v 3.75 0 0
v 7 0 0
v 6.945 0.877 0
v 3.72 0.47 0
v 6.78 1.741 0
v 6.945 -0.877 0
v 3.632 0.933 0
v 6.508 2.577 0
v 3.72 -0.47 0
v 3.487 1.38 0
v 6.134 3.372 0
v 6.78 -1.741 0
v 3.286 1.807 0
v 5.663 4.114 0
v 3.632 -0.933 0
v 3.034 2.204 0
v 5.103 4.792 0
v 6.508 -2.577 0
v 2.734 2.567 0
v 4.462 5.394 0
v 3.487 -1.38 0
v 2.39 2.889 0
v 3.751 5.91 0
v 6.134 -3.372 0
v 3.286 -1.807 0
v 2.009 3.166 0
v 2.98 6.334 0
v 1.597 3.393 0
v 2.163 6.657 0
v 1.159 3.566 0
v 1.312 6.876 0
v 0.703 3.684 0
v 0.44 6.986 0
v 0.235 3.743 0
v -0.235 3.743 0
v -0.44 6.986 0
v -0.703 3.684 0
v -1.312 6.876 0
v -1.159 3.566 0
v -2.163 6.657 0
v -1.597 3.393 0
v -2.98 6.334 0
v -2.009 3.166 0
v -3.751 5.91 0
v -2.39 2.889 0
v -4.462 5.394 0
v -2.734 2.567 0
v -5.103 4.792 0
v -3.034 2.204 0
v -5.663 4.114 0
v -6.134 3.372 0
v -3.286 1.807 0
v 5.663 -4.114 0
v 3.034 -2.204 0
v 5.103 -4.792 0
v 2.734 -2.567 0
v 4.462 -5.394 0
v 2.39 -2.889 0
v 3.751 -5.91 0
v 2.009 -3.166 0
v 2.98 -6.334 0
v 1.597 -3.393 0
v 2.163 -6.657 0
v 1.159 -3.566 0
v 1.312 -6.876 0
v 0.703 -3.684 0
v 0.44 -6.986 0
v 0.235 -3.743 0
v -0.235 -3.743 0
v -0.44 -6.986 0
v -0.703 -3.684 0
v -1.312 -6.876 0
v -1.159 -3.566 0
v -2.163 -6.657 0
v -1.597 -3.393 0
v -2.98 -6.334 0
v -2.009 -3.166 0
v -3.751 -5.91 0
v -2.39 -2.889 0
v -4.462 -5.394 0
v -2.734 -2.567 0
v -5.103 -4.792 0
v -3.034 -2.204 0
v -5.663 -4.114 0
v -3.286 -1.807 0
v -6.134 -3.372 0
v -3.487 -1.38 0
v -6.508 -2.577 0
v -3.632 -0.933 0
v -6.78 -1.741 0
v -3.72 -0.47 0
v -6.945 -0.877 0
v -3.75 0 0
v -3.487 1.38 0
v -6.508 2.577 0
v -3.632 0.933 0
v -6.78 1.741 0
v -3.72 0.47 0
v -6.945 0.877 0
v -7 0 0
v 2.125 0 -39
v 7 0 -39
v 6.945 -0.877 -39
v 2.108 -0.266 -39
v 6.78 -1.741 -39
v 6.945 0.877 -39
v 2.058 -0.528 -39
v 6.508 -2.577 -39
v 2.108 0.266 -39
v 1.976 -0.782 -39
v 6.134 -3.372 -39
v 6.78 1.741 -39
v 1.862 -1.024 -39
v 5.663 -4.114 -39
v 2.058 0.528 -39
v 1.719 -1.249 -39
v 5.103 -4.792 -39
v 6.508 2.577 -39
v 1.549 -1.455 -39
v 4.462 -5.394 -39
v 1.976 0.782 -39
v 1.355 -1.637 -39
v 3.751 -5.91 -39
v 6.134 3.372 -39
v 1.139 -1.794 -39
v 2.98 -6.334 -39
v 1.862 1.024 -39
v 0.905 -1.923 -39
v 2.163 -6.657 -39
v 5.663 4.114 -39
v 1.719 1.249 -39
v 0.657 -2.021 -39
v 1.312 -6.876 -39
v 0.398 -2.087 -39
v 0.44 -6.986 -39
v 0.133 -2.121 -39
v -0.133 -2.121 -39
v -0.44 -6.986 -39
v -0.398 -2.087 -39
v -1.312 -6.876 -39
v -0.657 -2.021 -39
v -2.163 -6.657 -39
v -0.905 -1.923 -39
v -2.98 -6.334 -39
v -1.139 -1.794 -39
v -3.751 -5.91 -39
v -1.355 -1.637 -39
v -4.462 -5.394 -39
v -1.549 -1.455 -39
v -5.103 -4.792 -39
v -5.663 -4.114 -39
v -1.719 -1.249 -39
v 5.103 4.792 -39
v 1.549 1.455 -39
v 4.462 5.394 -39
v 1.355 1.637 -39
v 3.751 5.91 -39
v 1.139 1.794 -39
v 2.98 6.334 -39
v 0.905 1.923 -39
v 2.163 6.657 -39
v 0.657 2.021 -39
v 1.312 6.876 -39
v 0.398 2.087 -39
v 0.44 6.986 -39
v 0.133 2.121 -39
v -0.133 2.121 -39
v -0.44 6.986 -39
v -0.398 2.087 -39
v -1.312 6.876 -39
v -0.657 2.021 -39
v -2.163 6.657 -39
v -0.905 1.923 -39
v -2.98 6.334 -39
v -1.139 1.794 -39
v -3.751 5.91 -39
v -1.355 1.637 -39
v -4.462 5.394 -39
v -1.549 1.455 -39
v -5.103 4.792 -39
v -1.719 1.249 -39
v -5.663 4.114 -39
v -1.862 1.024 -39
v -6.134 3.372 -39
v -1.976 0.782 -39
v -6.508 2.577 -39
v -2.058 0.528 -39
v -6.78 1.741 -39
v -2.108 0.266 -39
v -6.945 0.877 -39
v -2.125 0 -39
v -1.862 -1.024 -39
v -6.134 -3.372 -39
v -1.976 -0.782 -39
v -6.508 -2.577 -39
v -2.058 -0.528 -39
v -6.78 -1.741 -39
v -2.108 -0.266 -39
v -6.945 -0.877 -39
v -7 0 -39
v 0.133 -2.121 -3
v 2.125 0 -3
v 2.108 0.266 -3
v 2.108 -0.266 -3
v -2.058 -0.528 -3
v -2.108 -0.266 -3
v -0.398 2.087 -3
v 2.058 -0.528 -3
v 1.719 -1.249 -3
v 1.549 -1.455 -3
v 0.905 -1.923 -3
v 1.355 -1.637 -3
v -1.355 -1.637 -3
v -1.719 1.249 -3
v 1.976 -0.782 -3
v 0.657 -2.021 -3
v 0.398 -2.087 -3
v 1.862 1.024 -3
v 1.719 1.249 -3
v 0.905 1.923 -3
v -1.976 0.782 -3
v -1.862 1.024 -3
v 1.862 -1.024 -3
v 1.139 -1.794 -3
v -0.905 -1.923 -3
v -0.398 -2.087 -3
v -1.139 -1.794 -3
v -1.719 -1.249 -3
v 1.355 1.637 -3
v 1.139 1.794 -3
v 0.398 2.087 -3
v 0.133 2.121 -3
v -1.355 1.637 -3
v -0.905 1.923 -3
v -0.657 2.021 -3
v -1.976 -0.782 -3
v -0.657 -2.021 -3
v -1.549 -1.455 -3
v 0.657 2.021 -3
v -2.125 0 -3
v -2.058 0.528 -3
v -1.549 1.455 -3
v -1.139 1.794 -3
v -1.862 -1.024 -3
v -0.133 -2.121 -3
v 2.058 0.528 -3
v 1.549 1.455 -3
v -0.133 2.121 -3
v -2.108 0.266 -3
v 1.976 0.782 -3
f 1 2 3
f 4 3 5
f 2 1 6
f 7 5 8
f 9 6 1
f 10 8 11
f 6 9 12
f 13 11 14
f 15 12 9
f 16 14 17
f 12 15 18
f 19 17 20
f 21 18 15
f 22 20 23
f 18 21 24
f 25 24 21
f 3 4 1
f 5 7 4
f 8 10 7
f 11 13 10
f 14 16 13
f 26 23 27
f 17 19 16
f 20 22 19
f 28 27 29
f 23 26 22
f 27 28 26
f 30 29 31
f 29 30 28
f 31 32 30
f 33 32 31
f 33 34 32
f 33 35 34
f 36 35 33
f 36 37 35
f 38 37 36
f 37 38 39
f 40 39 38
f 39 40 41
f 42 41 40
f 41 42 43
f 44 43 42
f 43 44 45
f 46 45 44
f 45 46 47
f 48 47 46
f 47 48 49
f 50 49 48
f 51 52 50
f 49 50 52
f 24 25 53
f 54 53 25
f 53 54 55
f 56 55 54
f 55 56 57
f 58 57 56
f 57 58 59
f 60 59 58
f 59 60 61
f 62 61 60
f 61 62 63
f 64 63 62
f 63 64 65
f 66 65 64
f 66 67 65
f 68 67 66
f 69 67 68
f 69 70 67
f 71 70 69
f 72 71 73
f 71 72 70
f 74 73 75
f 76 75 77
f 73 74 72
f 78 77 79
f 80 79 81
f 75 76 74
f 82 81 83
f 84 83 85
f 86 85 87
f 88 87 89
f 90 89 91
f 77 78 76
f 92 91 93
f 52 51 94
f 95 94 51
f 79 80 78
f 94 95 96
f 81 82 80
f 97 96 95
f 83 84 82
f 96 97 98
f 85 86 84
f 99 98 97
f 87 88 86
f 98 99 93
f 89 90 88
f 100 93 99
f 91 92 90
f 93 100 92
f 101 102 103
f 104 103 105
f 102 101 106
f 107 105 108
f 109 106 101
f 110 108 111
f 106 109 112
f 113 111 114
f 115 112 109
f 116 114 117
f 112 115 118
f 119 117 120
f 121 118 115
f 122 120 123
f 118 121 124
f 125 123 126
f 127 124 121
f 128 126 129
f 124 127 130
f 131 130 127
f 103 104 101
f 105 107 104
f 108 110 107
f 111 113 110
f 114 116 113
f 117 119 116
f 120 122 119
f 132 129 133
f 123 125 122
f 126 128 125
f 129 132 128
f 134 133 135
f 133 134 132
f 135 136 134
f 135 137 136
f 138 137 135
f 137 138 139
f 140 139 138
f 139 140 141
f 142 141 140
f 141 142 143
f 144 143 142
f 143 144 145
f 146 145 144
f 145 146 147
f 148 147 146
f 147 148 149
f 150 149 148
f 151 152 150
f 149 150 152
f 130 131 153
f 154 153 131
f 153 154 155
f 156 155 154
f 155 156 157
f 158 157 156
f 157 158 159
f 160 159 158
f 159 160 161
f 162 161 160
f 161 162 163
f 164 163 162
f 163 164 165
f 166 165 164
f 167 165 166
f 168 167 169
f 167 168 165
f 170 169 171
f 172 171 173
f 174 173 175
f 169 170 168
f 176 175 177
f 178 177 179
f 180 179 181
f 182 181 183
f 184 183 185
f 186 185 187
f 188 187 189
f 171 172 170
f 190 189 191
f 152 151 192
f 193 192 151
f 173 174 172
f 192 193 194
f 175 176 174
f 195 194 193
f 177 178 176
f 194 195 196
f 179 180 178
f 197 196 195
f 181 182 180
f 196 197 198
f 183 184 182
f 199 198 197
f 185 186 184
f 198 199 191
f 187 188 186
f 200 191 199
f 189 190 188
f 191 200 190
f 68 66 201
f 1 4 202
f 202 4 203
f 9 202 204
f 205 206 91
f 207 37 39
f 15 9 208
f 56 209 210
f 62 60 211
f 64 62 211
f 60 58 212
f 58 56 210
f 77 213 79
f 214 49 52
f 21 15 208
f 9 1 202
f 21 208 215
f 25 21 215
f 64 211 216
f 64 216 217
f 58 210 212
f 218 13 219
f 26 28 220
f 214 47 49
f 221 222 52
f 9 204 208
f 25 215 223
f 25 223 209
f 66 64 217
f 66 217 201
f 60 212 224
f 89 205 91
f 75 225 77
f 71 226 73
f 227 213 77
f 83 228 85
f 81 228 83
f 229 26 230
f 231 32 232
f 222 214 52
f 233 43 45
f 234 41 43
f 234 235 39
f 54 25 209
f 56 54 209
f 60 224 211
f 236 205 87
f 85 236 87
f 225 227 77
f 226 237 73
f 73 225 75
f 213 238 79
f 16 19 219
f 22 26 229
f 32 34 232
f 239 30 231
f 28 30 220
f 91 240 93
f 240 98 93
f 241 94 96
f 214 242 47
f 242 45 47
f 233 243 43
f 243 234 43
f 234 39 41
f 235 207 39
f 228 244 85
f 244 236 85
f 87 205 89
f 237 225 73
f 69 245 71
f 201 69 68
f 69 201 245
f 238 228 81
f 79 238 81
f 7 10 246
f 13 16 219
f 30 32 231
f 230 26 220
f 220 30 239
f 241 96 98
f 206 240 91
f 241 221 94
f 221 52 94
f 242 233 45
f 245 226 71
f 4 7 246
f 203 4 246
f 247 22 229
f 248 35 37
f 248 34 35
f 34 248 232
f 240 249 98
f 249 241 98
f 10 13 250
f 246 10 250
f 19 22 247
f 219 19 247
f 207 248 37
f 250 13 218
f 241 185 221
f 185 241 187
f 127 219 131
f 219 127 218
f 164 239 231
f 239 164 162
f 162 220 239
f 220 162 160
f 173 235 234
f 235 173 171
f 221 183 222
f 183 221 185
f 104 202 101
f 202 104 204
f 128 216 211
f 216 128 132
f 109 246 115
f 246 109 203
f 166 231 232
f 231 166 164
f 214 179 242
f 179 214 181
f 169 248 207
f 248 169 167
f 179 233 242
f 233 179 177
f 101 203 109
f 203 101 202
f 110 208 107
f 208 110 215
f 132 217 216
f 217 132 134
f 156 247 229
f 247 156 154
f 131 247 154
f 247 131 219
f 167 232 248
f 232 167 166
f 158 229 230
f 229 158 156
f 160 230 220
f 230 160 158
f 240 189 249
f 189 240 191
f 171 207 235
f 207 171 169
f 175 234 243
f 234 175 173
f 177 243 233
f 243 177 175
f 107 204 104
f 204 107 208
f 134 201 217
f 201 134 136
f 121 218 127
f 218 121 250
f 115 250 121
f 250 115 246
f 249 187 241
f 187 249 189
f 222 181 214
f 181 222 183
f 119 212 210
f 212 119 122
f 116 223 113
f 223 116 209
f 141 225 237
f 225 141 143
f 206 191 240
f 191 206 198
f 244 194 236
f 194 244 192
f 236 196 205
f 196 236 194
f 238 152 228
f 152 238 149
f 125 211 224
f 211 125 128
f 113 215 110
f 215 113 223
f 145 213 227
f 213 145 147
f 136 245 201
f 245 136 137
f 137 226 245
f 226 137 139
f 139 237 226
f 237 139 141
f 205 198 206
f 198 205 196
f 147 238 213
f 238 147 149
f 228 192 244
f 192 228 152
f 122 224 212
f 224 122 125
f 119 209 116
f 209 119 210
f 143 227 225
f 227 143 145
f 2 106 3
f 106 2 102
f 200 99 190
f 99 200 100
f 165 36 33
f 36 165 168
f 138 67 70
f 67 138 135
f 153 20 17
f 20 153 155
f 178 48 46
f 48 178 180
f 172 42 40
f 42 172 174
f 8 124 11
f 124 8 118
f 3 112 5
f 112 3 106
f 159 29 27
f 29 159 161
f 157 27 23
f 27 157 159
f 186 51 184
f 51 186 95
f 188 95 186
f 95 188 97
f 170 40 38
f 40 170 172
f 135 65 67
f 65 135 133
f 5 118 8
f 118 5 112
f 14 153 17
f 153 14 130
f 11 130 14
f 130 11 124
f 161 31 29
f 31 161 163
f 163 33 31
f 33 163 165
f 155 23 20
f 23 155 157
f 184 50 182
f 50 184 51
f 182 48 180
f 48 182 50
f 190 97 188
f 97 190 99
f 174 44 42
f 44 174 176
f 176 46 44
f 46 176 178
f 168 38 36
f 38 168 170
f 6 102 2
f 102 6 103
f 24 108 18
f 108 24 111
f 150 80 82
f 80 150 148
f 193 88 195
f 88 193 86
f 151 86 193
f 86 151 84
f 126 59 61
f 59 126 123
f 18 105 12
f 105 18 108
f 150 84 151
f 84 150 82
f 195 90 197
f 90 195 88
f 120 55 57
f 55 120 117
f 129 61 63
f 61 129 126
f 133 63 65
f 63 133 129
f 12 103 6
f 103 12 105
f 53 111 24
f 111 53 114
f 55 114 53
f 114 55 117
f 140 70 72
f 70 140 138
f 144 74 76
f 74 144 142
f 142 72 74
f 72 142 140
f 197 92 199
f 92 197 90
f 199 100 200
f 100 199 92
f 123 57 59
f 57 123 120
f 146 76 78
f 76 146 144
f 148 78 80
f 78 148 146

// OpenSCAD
$fn = 50;


difference() {
	union() {
		translate(v = [0, 0, -39.0000000000]) {
			cylinder(h = 39, r = 7.0000000000);
		}
		cylinder(h = 0, r = 10.0000000000);
	}
	union() {
		translate(v = [0, 0, 0]) {
			rotate(a = [0, 0, 0]) {
				difference() {
					union() {
						#translate(v = [0, 0, -39.0000000000]) {
							cylinder(h = 39, r = 2.0000000000);
						}
						#translate(v = [0, 0, -3]) {
							cylinder(h = 3, r = 7.0000000000, r1 = 2.1250000000, r2 = 3.7500000000);
						}
						#translate(v = [0, 0, -39.0000000000]) {
							cylinder(h = 39, r = 2.1250000000);
						}
						#translate(v = [0, 0, -39.0000000000]) {
							cylinder(h = 39, r = 2.0000000000);
						}
					}
					union();
				}
			}
		}
	}
}
